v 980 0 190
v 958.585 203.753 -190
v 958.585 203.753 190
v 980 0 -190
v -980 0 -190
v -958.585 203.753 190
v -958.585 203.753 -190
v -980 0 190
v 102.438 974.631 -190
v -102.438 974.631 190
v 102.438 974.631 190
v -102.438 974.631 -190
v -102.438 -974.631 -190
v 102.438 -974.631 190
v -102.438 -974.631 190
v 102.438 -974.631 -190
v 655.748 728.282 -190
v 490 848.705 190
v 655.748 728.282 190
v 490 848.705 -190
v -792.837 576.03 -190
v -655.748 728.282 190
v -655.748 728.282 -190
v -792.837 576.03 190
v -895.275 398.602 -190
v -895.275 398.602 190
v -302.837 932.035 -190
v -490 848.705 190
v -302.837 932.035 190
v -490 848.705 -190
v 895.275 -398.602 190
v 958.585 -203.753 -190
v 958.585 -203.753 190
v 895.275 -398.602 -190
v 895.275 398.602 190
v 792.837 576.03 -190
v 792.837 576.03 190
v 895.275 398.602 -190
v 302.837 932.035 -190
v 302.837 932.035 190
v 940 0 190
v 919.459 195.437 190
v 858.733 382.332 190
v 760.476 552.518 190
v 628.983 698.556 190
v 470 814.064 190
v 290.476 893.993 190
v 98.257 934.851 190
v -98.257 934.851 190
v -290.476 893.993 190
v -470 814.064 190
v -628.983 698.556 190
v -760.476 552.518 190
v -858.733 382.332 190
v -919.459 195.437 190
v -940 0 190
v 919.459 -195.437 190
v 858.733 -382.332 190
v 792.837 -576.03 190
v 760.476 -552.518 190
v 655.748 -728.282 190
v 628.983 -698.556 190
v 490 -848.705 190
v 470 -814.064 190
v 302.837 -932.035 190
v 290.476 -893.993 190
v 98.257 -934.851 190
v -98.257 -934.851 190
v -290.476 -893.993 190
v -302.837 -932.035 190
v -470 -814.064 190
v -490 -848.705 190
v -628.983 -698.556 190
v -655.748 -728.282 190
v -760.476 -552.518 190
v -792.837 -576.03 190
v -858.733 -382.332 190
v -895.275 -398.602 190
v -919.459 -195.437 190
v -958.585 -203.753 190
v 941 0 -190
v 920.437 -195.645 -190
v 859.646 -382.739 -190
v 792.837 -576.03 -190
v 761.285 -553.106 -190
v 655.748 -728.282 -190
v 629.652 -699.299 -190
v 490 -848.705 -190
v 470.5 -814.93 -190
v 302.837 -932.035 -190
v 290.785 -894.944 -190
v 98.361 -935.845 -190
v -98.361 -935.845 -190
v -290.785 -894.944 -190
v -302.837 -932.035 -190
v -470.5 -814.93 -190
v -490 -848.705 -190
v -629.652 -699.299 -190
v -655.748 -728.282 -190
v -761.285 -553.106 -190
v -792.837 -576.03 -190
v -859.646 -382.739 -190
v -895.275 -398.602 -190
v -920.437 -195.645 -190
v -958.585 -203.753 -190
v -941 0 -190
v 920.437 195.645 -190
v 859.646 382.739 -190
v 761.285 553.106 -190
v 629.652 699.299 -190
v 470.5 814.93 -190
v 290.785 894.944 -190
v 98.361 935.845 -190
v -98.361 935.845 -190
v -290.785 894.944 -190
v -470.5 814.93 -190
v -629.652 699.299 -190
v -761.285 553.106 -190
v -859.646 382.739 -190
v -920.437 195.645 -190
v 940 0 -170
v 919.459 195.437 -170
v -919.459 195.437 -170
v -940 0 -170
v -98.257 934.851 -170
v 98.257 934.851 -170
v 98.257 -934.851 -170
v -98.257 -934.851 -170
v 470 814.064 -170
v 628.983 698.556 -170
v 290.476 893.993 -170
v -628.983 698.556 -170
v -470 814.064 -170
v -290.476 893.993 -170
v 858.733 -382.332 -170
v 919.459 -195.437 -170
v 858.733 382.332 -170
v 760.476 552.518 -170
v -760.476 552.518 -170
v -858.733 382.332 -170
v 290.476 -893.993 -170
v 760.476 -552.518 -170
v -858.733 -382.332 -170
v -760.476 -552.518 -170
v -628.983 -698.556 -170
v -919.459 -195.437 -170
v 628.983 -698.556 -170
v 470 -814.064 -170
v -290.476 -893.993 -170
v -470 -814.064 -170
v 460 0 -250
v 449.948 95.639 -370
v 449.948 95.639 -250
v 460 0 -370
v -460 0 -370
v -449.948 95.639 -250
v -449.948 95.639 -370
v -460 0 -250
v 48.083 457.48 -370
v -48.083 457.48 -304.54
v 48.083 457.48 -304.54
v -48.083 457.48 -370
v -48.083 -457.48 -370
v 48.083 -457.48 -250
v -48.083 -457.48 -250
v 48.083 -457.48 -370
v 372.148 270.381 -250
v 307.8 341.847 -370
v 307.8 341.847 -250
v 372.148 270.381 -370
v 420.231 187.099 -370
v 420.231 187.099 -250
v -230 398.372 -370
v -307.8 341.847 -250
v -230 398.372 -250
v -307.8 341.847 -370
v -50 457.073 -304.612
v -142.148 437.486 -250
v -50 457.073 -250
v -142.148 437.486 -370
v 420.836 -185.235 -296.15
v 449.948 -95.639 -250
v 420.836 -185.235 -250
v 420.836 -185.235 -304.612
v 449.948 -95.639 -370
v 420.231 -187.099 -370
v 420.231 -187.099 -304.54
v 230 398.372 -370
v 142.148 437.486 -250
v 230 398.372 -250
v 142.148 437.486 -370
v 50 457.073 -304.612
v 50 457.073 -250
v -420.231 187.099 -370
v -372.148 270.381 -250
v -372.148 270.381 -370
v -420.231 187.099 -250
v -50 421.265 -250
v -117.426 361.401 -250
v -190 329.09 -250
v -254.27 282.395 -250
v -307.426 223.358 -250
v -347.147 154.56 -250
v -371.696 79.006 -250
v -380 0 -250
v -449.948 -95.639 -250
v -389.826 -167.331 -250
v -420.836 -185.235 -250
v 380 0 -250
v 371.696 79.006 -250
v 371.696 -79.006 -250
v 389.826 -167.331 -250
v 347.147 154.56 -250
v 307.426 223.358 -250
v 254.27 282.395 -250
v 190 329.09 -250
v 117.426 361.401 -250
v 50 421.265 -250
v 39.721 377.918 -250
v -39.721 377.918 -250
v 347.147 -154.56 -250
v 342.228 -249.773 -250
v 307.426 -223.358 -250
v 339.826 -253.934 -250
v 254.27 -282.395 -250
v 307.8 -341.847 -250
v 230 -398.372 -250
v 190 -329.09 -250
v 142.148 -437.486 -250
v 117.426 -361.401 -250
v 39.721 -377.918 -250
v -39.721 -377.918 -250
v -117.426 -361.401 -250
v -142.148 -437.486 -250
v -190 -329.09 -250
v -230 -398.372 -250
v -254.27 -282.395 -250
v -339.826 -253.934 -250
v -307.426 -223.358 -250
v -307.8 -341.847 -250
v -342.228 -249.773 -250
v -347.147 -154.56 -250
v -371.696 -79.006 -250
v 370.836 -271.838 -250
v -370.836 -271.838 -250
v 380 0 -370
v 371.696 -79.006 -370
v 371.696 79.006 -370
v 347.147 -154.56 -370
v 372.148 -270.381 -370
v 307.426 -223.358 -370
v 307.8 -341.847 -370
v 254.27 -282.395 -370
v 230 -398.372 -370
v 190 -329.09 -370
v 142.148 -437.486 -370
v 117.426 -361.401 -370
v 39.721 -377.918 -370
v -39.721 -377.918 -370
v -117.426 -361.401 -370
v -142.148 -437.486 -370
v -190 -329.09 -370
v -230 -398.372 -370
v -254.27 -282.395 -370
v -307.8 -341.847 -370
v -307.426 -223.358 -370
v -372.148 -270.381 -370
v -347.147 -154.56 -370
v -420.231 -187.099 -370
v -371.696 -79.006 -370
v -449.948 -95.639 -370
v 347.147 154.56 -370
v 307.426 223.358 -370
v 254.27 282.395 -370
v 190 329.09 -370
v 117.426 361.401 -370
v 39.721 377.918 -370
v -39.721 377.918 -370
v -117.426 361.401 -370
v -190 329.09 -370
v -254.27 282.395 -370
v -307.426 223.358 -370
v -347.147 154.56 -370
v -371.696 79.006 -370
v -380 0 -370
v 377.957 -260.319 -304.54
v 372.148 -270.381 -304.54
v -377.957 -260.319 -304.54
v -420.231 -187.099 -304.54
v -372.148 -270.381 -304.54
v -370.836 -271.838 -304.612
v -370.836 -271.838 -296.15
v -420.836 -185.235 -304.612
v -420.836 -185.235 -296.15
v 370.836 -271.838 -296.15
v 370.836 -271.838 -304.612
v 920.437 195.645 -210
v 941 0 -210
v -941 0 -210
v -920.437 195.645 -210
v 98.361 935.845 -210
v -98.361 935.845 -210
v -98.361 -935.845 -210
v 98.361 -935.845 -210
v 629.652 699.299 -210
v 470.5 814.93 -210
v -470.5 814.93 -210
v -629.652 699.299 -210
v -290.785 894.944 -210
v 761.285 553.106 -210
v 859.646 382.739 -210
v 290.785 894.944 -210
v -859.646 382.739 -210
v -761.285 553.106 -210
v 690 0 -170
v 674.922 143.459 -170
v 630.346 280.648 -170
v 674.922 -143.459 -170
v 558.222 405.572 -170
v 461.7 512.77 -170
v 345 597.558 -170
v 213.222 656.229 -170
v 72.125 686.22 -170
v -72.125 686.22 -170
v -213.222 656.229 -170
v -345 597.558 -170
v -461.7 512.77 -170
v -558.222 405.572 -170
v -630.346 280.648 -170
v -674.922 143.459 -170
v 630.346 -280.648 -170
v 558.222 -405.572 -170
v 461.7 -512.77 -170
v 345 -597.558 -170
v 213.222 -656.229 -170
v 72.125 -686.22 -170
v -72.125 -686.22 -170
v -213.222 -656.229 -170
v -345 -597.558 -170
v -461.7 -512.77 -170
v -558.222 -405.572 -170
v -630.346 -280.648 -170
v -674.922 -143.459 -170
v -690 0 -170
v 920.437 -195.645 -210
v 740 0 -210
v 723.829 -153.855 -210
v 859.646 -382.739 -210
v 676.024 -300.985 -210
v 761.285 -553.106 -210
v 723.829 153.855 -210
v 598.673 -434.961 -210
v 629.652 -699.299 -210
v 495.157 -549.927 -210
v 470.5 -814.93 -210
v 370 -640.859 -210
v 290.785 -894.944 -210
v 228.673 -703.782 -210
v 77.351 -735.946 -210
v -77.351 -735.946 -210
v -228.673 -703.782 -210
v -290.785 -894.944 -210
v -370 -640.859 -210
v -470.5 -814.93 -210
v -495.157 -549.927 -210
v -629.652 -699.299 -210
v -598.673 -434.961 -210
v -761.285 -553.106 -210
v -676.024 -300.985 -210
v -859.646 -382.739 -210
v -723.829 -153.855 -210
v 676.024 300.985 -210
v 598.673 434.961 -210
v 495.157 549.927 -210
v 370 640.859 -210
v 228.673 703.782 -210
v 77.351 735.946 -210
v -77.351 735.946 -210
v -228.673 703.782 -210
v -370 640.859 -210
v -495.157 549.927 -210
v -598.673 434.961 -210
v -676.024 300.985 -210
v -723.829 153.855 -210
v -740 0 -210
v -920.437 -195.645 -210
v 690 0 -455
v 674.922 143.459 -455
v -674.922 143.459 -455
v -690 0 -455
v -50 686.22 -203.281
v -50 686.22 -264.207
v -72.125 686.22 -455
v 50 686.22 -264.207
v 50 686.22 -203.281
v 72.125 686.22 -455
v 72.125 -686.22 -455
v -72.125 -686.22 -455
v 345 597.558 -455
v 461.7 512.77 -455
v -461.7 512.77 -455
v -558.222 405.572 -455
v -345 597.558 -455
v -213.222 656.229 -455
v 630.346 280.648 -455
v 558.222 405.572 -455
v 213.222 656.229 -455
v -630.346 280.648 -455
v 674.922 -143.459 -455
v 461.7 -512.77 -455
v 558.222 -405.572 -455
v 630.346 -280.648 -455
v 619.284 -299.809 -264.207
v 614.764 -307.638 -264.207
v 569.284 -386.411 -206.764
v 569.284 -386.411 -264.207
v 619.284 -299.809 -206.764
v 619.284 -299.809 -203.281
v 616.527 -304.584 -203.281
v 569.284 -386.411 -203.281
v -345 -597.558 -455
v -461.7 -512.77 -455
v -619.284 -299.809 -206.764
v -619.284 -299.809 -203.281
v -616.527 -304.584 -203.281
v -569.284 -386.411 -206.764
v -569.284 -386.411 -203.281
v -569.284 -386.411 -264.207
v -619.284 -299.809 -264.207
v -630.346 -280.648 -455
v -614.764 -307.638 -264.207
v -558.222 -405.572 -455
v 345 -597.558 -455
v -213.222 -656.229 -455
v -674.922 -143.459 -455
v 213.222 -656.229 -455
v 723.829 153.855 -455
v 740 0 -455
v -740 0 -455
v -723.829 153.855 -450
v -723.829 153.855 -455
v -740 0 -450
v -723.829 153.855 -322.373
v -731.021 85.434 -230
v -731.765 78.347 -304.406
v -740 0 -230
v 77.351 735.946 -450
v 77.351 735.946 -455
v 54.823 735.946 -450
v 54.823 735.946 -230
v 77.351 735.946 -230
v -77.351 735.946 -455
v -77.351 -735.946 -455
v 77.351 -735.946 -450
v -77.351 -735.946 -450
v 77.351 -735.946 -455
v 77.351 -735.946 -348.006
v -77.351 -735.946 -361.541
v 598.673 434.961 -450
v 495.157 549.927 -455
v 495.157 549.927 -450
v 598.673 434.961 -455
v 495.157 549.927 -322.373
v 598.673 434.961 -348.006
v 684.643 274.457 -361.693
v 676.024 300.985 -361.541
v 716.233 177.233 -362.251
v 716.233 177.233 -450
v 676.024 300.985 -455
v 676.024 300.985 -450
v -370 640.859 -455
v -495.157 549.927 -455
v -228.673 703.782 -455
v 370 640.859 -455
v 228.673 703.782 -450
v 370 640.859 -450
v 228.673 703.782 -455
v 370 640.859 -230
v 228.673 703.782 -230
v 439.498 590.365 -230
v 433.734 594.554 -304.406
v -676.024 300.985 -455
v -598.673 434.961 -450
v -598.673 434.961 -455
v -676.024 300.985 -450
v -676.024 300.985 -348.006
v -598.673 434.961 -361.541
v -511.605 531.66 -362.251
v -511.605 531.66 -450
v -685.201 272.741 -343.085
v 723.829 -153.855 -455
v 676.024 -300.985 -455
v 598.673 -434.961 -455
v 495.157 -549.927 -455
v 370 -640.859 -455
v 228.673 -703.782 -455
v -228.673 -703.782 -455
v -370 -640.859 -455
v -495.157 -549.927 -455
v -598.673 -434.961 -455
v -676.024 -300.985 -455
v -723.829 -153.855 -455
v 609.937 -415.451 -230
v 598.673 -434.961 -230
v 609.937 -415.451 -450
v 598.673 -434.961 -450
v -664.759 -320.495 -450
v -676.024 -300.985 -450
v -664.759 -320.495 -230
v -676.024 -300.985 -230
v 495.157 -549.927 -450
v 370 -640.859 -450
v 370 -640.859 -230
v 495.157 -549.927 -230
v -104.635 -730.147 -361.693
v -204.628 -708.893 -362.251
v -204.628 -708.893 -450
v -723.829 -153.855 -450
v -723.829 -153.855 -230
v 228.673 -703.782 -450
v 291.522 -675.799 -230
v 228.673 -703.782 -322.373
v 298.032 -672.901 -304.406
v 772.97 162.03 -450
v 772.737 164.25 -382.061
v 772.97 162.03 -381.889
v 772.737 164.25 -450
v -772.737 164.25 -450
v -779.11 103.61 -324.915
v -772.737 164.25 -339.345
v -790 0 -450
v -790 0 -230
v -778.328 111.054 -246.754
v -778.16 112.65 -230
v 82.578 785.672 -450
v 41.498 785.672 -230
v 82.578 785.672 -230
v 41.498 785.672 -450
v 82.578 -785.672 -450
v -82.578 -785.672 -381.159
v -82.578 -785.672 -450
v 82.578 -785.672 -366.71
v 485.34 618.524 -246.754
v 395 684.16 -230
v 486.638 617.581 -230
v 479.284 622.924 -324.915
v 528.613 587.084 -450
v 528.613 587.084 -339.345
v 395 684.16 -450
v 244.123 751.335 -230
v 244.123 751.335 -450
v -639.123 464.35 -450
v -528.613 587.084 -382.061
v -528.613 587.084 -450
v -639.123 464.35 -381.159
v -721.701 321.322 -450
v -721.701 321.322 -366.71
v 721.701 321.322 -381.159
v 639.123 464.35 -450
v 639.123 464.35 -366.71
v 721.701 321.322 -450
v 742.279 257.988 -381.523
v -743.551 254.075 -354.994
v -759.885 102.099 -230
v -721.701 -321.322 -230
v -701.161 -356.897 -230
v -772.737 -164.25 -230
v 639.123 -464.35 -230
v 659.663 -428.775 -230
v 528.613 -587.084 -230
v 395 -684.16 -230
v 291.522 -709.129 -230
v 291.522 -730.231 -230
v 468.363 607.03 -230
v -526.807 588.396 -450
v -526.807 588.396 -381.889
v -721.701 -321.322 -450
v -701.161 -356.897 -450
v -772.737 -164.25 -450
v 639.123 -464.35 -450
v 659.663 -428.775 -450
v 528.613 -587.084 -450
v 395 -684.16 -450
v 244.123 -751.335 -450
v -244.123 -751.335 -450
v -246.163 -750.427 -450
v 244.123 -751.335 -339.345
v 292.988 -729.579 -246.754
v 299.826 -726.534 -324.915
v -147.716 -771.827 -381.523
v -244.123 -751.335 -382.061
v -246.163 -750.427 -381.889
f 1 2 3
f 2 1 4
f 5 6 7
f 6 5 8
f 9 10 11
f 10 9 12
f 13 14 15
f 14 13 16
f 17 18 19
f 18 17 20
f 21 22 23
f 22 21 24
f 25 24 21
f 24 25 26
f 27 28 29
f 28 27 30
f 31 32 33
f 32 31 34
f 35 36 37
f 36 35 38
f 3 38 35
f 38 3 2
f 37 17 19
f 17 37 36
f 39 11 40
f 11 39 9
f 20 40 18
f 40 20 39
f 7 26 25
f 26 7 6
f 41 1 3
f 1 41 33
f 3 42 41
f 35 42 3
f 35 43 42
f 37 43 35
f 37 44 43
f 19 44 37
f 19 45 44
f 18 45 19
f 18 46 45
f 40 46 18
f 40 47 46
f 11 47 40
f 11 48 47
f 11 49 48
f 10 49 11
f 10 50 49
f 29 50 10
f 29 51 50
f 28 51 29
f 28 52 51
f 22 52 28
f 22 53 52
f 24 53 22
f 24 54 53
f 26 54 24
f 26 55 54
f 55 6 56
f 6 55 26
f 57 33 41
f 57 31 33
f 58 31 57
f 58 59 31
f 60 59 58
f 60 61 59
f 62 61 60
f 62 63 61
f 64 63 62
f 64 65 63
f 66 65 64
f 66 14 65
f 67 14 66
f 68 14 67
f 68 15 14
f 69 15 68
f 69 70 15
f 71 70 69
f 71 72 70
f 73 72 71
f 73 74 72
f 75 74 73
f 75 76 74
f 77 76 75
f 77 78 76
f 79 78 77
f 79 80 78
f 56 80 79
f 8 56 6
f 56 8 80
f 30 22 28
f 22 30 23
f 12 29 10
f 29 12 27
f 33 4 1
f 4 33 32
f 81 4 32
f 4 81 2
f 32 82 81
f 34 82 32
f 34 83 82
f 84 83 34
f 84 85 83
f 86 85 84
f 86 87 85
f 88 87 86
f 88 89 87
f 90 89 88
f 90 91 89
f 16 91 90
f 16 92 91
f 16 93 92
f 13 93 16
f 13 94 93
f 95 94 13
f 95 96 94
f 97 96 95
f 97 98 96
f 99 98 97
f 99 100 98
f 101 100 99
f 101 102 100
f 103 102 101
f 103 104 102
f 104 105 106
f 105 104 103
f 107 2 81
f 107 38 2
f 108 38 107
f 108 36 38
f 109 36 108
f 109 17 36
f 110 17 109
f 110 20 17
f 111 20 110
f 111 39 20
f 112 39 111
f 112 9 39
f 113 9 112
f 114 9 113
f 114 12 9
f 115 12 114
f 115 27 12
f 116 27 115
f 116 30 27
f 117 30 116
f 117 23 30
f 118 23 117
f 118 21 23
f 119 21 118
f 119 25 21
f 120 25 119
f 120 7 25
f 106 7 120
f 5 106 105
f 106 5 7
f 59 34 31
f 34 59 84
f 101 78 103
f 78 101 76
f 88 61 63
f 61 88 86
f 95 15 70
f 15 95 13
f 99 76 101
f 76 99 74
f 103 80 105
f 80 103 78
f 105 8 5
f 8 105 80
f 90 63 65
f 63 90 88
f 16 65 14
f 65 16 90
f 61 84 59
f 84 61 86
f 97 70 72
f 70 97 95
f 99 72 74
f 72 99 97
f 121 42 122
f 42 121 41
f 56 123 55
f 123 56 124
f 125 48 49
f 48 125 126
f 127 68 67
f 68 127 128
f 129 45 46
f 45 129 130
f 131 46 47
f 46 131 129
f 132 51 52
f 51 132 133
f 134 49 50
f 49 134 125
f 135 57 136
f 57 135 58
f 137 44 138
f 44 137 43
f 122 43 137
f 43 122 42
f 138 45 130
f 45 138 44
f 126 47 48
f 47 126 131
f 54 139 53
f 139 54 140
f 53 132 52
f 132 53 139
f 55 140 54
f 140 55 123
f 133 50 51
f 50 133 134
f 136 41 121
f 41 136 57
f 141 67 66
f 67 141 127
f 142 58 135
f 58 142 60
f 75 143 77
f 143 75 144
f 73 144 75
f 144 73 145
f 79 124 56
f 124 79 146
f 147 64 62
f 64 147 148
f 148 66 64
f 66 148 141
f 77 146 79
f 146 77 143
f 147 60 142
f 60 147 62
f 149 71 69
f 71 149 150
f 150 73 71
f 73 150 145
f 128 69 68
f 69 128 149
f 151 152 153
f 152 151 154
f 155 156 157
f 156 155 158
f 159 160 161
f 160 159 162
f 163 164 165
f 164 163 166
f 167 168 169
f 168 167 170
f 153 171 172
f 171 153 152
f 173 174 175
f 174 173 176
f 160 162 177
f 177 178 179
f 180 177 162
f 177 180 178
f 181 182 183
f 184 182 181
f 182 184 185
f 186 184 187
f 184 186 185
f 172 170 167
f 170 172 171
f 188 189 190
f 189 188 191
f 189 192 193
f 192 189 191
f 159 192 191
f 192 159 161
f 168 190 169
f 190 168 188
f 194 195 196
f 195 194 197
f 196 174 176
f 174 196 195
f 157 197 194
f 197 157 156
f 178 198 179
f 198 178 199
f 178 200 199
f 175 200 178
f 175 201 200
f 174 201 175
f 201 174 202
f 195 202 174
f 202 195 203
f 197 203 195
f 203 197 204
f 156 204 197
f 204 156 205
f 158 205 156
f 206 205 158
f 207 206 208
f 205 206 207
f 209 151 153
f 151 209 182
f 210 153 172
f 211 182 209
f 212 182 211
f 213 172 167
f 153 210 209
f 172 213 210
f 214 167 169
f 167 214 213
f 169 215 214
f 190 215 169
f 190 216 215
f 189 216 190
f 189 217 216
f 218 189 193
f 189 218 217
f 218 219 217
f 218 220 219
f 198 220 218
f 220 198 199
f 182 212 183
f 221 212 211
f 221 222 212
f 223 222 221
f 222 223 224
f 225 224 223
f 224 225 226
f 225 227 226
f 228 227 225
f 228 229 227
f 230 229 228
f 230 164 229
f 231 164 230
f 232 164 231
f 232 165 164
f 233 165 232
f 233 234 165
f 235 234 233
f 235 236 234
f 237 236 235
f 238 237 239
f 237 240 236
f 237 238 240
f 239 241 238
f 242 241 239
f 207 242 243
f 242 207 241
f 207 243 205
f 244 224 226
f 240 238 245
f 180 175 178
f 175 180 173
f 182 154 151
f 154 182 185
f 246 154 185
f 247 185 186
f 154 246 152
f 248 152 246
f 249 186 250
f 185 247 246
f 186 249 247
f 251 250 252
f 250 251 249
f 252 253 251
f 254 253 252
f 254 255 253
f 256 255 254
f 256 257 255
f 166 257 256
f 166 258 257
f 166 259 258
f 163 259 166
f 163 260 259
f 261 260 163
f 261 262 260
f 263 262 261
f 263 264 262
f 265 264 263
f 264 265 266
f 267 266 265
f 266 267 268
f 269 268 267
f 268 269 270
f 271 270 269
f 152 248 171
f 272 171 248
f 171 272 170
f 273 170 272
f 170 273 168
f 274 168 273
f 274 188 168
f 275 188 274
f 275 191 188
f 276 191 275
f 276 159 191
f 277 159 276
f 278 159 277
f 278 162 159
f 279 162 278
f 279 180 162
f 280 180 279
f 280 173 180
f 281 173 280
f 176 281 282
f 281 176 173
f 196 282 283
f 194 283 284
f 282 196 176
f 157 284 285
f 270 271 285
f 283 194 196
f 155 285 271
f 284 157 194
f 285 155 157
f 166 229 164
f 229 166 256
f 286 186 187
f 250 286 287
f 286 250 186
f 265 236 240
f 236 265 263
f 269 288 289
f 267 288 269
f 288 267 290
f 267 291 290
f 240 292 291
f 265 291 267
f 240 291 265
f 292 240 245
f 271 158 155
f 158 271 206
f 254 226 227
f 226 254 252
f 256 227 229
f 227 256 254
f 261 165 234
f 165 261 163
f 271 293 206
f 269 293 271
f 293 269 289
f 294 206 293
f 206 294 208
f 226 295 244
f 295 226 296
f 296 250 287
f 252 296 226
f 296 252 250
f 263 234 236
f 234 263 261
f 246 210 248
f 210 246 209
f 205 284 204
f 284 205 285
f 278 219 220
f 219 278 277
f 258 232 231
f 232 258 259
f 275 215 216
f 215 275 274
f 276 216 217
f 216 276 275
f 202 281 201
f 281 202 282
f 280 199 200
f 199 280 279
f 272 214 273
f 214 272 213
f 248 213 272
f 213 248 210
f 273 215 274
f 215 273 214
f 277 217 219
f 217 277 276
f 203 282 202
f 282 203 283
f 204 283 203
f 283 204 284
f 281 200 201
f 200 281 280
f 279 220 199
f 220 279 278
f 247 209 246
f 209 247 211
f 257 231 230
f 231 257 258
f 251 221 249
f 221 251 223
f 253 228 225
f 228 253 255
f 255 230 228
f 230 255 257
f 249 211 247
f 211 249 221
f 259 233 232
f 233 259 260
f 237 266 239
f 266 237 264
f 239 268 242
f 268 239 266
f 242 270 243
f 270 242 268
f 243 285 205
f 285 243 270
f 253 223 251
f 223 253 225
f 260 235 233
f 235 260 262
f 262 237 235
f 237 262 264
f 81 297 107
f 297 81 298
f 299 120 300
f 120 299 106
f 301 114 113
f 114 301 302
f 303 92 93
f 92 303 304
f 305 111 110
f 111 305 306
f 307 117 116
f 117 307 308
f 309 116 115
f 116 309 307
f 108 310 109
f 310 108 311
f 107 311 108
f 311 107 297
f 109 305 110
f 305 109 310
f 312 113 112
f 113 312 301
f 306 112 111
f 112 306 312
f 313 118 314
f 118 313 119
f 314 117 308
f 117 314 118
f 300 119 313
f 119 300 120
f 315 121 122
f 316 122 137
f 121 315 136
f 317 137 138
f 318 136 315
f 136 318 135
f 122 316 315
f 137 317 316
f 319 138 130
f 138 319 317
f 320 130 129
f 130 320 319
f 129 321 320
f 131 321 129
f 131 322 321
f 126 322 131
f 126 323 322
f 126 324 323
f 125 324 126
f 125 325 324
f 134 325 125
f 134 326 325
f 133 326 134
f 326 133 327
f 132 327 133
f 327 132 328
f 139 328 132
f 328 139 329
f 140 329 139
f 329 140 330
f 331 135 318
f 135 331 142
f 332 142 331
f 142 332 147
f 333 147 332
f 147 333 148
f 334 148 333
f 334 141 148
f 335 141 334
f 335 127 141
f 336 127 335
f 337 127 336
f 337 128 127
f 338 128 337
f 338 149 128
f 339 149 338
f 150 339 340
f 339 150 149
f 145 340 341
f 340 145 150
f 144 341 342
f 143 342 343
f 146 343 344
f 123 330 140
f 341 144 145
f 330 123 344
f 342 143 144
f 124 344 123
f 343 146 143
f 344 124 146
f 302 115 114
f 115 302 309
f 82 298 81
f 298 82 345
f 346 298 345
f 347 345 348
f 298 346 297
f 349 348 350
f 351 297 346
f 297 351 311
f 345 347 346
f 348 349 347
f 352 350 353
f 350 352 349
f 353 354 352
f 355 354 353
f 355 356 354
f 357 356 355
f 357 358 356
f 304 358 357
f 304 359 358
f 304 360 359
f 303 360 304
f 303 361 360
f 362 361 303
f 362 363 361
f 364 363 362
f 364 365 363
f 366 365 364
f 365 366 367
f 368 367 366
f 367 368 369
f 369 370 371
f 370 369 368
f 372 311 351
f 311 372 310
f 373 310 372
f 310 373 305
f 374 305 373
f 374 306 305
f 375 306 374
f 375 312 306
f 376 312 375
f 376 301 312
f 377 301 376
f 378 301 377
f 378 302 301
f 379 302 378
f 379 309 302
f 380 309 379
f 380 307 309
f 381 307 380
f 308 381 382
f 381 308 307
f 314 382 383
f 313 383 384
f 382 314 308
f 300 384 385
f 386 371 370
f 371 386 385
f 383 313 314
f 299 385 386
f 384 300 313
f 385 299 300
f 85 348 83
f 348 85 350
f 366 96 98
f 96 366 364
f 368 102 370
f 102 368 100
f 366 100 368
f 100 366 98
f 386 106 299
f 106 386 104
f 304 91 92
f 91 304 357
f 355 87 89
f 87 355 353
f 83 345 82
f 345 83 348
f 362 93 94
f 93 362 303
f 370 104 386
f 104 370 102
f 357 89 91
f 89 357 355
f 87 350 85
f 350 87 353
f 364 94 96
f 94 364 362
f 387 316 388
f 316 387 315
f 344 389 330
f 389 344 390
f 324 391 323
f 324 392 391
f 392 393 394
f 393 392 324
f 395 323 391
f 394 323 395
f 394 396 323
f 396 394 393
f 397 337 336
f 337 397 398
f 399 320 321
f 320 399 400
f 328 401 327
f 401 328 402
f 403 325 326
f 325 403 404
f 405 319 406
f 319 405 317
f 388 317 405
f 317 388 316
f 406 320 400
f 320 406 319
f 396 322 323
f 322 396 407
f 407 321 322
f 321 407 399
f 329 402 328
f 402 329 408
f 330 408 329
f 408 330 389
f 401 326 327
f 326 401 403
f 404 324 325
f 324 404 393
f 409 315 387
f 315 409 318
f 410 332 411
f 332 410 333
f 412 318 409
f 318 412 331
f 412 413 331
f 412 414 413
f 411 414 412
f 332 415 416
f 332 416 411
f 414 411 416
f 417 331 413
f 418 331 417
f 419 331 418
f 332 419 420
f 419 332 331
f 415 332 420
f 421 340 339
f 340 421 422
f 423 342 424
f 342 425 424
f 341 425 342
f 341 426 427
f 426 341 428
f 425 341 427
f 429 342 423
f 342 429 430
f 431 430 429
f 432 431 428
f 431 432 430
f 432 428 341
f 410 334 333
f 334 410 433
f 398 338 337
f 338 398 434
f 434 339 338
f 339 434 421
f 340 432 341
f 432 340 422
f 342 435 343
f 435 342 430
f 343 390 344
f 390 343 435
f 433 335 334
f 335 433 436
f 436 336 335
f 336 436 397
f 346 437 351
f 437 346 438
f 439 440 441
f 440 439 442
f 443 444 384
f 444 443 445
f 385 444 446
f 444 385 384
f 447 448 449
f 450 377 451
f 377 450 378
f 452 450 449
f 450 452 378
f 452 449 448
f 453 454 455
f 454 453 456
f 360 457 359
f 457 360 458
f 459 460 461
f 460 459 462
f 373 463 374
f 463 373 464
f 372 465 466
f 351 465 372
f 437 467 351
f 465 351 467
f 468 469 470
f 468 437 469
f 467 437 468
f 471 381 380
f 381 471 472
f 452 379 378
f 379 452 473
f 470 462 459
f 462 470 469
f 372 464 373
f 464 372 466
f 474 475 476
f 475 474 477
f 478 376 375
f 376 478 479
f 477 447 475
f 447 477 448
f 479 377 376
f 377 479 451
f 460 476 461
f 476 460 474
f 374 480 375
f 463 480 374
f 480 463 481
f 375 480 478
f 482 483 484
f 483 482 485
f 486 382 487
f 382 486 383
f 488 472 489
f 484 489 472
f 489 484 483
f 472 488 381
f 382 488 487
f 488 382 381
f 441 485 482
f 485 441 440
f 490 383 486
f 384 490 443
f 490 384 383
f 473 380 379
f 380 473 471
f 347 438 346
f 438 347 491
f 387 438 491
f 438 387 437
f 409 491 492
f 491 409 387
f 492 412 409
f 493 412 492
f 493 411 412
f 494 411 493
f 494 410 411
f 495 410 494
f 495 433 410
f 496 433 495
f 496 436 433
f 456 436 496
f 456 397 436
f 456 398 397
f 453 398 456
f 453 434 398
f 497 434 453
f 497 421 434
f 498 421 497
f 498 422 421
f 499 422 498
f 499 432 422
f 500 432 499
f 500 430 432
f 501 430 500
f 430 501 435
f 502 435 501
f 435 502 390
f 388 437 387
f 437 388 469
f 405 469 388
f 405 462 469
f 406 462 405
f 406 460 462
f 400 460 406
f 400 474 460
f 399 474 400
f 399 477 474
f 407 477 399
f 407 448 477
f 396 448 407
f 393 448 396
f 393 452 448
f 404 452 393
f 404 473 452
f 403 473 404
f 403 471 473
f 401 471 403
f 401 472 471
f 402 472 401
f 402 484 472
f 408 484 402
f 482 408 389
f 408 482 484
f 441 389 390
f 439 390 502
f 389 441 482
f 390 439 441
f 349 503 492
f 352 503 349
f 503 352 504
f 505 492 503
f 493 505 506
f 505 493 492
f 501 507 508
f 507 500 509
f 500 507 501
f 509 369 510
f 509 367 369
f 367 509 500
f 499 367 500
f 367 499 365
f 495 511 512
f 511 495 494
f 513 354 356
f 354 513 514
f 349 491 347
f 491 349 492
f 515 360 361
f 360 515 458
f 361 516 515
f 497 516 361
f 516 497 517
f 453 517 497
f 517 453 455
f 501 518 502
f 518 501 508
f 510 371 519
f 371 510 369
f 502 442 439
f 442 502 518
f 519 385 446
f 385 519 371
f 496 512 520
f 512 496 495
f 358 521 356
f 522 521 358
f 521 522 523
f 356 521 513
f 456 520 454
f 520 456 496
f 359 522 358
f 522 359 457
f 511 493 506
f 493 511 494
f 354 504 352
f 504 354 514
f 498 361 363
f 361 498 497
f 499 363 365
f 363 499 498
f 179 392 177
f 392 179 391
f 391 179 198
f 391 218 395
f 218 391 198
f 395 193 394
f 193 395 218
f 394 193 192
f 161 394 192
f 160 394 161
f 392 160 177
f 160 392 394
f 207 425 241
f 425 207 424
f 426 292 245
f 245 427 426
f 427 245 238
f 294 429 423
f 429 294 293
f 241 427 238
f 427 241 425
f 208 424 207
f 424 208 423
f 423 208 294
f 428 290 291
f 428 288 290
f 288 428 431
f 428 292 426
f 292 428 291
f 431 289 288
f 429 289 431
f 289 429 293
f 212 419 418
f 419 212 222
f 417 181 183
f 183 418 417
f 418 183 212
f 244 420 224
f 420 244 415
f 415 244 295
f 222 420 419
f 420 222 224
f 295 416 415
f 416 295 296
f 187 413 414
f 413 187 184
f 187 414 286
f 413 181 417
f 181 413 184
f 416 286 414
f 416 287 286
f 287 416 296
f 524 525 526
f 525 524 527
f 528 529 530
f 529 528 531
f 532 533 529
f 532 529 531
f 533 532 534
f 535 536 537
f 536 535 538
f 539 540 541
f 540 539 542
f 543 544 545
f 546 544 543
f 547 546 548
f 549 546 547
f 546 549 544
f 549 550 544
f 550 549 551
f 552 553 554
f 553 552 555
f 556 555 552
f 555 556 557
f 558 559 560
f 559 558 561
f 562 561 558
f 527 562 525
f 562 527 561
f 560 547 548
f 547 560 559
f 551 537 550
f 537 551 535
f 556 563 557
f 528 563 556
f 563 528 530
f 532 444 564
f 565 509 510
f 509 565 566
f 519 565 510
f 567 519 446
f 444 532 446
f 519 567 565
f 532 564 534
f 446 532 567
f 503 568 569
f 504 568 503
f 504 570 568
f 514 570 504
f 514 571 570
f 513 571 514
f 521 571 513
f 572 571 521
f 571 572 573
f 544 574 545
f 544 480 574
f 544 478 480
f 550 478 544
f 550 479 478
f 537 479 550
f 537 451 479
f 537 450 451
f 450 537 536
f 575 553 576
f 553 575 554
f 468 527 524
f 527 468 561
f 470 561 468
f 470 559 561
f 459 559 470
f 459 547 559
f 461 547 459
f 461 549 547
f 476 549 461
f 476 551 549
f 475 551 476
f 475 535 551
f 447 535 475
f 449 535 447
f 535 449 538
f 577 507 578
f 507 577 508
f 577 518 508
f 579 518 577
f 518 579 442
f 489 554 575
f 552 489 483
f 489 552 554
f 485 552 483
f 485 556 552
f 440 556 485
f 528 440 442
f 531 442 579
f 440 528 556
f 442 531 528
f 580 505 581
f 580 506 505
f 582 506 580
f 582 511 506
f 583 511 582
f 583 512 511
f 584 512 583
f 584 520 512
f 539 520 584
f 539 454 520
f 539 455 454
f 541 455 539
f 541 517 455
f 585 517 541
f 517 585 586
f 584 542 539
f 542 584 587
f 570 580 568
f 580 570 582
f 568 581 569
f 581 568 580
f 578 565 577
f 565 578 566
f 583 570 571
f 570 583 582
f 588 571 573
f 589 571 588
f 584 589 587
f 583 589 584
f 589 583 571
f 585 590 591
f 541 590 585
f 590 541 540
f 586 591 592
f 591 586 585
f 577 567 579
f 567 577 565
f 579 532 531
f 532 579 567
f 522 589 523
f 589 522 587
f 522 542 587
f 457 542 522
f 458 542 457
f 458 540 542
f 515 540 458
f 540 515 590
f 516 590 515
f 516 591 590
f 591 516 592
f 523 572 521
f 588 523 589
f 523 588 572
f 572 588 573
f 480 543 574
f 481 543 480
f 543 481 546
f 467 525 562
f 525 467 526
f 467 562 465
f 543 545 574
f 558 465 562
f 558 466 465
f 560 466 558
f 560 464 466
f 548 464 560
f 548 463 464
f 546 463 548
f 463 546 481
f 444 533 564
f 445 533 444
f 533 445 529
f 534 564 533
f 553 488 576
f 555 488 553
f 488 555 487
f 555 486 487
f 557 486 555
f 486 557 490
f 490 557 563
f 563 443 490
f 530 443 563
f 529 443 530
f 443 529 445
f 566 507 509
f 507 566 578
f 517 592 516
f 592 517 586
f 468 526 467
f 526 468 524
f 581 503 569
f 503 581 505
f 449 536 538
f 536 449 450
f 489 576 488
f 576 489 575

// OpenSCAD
module ring(r1,r2,h){
    difference(){
      cylinder(h,r1,r1,true);
      cylinder(h+1,r2,r2,true);
    }
}
ring(980,940, 380);
translate([0,0,-310]) ring(460,380, 120); 

translate([0,0,-190])  ring(941,690, 40); 
translate([0,0,-330]) ring(740,690, 250);  

module holder(){
translate([0,560,-256]) rotate([10,0,0]) cube([100,300,60],true);
rotate([0,0,120]) translate([0,560,-256]) rotate([10,0,0]) cube([100,300,60],true);
rotate([0,0,-120]) translate([0,560,-256]) rotate([10,0,0]) cube([100,300,60],true);
}
holder();

module clip(){
  translate([0,0,-340]) difference(){
    cylinder(220,790,790,true);
    cylinder(221,690,690,true);
    rotate([21,-5,0]) translate([0,-580,350]) cube([600,600,200],true);
    rotate([21,-5,120]) translate([0,-580,350]) cube([600,600,200],true);
    rotate([21,-5,-120]) translate([0,-580,350]) cube([600,600,200],true);
    
    translate([-500,-580,-350])  rotate([0,0,-45]) cube([600,600,2000],true);
    rotate([0,0,120]) translate([-500,-580,-350])  rotate([0,0,-45]) cube([600,600,2000],true);
    rotate([0,0,-120]) translate([-500,-580,-350])  rotate([0,0,-45]) cube([600,600,2000],true);
    
  }
}
clip();
//module thread(){
//  translate([0,0,-160]) for(i=[0:1:820]){
//    rotate([0,0,i]) translate([930,0,i/3]) sphere(25);
//  }
//}
//thread();
